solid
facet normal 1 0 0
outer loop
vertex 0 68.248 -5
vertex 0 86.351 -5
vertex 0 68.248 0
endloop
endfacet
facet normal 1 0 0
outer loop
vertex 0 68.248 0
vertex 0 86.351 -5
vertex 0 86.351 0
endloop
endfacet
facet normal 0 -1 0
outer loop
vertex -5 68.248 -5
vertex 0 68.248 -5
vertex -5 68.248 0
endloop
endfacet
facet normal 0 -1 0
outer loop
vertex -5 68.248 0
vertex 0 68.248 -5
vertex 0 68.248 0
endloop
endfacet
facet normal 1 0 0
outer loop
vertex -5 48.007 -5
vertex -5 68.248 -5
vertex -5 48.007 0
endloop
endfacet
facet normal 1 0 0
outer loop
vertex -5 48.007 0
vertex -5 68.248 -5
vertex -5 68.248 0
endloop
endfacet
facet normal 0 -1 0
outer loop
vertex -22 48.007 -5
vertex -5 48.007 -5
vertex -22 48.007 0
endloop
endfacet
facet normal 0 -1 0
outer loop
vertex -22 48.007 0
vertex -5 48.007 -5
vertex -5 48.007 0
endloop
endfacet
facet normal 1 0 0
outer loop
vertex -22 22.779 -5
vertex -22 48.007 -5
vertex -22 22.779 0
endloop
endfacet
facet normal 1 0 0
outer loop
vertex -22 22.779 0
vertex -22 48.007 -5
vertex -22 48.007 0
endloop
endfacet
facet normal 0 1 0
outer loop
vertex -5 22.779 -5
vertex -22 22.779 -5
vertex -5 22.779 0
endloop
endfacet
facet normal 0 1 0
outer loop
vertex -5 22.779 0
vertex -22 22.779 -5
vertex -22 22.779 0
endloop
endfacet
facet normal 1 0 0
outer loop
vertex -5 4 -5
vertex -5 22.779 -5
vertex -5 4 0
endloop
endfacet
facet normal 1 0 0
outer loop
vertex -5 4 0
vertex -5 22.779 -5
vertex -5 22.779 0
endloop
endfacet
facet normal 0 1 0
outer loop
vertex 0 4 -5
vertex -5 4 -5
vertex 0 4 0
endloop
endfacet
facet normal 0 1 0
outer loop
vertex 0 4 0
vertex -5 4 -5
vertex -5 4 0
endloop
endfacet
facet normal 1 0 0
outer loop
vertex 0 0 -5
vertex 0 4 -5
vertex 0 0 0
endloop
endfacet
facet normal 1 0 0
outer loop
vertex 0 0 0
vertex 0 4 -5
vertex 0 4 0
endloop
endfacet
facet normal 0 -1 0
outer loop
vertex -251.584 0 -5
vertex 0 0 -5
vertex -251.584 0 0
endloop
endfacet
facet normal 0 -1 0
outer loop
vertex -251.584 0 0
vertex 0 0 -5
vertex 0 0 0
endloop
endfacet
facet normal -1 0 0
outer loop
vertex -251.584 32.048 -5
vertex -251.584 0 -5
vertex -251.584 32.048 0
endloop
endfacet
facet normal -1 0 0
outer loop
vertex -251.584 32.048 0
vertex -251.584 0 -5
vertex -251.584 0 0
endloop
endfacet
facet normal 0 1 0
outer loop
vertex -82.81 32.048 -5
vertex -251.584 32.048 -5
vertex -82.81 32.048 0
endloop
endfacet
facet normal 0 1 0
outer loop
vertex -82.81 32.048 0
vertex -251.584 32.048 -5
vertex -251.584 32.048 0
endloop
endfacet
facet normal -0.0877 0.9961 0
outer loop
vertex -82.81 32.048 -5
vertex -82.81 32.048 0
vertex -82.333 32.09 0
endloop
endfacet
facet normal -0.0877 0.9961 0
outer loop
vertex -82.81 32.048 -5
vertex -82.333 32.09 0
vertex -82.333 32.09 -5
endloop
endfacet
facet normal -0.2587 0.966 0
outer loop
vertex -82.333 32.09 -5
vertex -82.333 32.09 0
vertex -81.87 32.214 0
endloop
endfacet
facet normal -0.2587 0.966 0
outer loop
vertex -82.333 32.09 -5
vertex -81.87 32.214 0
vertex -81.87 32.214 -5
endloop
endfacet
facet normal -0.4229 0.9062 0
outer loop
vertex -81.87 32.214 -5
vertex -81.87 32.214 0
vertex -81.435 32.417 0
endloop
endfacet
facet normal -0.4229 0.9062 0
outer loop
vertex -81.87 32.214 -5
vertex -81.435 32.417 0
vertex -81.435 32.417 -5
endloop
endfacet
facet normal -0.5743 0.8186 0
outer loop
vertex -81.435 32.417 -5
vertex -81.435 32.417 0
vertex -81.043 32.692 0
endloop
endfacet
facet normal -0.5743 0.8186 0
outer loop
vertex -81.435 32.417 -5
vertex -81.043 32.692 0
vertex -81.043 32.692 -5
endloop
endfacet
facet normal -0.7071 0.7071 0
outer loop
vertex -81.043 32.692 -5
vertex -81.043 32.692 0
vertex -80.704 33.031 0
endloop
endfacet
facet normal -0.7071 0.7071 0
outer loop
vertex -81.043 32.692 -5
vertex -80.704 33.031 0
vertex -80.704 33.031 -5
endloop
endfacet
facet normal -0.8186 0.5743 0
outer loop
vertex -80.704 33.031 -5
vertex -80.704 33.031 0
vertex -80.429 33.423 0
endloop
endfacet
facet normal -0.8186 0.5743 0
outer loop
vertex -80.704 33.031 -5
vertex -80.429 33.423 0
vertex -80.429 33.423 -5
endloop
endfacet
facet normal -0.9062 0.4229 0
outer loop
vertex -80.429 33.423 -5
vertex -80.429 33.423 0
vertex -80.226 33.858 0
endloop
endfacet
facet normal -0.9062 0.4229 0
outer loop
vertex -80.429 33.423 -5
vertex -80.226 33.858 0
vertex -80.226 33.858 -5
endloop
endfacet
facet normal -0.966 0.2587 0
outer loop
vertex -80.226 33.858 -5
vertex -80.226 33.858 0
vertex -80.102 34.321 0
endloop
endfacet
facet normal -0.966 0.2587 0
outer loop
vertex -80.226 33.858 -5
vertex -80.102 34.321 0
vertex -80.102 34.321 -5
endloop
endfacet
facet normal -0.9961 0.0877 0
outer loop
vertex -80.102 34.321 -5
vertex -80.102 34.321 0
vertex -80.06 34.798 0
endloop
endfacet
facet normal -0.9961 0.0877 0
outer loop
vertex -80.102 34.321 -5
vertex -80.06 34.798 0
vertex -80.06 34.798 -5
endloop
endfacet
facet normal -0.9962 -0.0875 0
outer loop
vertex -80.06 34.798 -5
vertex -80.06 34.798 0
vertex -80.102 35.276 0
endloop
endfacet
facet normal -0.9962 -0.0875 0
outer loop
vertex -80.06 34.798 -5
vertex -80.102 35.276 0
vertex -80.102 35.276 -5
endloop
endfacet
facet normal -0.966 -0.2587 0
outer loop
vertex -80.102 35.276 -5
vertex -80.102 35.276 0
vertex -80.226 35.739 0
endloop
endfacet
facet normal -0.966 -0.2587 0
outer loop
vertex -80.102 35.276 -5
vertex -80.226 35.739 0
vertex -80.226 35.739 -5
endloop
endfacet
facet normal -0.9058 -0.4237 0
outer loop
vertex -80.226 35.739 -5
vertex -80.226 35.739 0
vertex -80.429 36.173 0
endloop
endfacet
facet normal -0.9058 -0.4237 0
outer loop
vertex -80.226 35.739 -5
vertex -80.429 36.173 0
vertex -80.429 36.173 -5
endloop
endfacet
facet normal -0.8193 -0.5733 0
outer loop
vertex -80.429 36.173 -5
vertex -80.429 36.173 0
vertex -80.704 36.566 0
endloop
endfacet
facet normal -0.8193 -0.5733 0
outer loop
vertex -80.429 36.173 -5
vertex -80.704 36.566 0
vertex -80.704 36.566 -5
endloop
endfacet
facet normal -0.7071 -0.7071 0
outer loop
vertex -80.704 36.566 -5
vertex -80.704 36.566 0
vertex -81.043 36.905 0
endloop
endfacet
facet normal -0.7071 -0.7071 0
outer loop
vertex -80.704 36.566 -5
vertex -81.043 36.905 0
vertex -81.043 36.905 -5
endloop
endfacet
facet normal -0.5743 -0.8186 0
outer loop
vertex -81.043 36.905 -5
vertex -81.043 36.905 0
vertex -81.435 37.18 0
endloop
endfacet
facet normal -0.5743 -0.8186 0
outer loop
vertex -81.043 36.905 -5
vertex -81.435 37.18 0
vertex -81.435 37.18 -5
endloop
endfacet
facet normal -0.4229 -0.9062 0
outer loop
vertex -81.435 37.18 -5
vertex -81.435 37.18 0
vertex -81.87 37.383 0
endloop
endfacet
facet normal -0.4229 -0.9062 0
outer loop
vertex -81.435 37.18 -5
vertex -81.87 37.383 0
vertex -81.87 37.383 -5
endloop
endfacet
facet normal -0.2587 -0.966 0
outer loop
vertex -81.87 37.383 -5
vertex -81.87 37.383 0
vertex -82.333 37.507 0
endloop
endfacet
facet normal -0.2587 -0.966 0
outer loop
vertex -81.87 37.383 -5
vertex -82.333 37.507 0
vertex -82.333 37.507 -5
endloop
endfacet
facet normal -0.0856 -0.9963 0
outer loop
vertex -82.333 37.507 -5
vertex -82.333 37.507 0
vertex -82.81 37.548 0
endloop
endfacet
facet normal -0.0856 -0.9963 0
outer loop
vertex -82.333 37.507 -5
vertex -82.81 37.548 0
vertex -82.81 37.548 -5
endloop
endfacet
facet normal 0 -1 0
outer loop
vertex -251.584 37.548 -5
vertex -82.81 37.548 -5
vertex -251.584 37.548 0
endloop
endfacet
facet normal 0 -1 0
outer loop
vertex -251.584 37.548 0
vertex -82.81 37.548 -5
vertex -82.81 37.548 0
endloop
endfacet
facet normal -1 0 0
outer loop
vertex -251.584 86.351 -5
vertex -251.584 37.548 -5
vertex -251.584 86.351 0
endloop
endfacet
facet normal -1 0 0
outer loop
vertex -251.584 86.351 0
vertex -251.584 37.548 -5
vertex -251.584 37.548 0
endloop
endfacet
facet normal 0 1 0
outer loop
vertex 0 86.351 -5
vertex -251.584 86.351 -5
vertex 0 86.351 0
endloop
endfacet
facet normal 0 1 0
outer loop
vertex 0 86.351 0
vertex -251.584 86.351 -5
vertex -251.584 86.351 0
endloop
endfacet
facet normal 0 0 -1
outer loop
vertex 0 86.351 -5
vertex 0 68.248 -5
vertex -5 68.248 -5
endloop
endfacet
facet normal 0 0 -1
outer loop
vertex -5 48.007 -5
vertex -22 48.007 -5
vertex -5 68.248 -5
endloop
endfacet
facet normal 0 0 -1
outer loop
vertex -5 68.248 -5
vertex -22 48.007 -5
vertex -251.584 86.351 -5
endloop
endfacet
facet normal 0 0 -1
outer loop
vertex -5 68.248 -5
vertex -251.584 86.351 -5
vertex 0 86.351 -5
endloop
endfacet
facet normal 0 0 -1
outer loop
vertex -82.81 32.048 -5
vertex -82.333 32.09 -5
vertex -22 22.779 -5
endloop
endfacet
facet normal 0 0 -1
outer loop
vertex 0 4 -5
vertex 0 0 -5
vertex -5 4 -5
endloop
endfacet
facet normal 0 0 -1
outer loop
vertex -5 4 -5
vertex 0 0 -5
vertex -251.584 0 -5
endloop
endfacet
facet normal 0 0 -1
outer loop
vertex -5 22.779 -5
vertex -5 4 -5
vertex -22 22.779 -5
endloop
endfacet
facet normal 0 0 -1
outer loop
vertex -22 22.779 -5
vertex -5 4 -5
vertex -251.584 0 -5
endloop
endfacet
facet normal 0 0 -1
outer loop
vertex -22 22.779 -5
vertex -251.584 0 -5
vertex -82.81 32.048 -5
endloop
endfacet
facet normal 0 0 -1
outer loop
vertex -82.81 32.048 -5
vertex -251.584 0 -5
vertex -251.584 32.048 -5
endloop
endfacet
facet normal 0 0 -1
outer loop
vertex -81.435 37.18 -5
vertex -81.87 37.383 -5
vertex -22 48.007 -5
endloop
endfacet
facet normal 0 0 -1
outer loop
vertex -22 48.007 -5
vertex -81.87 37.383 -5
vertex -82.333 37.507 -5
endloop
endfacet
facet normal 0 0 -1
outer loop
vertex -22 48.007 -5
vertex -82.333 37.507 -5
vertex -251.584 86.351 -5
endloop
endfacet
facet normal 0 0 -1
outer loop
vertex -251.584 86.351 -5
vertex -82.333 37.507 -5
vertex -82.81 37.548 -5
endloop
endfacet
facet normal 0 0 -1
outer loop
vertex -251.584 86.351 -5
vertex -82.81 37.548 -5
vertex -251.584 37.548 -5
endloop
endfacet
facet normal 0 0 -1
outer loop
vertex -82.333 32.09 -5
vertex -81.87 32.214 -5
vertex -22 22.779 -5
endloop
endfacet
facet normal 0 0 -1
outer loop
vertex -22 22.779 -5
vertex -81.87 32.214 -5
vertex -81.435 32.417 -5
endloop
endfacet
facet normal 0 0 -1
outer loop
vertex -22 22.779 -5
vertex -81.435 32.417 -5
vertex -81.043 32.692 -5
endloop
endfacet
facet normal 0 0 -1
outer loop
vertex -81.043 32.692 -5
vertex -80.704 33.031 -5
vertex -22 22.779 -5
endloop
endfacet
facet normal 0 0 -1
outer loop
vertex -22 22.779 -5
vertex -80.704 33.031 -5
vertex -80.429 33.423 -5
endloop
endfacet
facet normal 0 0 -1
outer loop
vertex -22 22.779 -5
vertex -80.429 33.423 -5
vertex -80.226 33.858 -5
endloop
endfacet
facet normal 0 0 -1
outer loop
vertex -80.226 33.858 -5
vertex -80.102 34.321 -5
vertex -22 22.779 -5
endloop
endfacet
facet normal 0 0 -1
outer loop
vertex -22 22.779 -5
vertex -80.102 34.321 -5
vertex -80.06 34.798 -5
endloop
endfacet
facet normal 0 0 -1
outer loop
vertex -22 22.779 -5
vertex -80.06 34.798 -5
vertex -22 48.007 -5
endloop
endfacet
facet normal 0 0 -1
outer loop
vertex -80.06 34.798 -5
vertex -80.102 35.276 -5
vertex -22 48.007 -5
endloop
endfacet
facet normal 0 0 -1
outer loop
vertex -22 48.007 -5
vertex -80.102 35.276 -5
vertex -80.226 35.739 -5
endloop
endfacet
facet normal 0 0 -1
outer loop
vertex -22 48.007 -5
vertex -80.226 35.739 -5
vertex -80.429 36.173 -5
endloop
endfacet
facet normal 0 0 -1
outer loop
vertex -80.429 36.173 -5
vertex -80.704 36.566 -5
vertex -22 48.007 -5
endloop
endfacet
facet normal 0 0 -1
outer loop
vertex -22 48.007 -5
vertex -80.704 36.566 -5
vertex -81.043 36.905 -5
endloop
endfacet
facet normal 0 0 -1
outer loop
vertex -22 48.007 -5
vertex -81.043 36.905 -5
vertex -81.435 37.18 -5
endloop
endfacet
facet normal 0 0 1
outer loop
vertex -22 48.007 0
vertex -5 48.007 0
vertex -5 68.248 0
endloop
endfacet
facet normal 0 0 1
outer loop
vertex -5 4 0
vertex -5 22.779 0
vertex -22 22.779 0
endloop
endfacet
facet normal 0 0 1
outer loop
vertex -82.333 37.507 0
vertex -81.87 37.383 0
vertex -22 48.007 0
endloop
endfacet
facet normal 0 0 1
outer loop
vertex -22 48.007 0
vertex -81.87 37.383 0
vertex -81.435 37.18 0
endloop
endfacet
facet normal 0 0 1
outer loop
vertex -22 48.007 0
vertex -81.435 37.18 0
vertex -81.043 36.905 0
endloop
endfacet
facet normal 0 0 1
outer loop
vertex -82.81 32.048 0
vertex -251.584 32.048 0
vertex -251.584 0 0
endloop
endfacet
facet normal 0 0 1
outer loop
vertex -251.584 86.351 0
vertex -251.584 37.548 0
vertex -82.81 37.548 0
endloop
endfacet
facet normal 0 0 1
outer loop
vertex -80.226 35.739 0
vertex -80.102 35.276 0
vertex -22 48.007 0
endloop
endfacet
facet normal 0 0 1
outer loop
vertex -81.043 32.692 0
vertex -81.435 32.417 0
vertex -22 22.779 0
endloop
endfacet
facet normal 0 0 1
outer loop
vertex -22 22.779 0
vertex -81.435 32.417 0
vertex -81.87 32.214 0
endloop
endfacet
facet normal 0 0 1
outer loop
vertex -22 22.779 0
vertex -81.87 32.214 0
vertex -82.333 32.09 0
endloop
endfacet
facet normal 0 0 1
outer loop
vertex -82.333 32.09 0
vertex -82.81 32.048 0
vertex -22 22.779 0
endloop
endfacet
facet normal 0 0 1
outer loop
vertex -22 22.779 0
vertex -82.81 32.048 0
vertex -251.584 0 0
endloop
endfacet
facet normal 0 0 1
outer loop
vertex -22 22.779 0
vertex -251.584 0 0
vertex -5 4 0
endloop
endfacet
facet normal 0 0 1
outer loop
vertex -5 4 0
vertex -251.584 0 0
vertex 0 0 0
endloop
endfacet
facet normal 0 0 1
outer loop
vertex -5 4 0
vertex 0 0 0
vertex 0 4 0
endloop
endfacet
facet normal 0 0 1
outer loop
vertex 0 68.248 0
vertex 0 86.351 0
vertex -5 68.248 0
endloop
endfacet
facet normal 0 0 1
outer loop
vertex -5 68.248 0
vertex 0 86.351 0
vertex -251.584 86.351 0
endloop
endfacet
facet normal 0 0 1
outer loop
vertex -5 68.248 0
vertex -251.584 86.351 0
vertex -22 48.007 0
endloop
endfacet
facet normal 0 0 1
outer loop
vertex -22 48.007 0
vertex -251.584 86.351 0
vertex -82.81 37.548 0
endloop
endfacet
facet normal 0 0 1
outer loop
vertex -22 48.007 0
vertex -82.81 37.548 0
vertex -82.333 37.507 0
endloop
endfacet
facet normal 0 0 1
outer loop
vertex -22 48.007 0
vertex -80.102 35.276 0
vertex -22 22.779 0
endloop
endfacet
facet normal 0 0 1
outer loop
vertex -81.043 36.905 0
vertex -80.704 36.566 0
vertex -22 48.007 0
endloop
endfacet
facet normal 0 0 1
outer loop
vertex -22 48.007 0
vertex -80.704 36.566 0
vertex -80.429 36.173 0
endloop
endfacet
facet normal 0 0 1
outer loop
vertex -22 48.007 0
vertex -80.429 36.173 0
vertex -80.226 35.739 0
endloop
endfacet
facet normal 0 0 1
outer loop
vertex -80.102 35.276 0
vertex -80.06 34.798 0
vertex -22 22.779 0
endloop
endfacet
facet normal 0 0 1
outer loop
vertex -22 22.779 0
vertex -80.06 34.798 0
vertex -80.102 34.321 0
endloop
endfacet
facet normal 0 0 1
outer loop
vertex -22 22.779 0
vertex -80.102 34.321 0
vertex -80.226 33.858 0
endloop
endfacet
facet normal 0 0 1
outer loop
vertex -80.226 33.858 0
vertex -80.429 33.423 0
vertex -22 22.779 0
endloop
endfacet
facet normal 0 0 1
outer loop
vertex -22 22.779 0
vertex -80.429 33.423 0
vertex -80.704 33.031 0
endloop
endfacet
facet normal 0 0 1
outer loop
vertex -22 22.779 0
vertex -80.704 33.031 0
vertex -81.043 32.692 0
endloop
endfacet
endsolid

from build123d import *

# Parameters (mm, degrees)
BOSS_EXTRUDE1_DEPTH = 5


with BuildPart() as part:
    # Sketch1 → Boss-Extrude1 (new body)
    with BuildSketch(Plane.XY):
        with BuildLine():
            Line((-5, 13.882591105), (-5, 8.902615006))
            Line((-5, 8.902615006), (-5, 4))
            Line((-5, 4), (0, 4))
            Line((0, 4), (0, 0))
            Line((0, 0), (-251.584289061, 0))
            Line((-251.584289061, 0), (-251.584289061, 32.048381087))
            Line((-251.584289061, 32.048381087), (-82.810223158, 32.048381087))
            ThreePointArc((-82.810223158, 32.048381087), (-80.060223158, 34.798381087), (-82.810223158, 37.548381087))
            Line((-82.810223158, 37.548381087), (-251.584289061, 37.548381087))
            Line((-251.584289061, 37.548381087), (-251.584289061, 86.350886134))
            Line((-251.584289061, 86.350886134), (0, 86.350886134))
            Line((0, 86.350886134), (0, 68.247704672))
            Line((0, 68.247704672), (-5, 68.247704672))
            Line((-5, 68.247704672), (-5, 48.006517598))
            Line((-5, 48.006517598), (-22, 48.006517598))
            Line((-22, 48.006517598), (-22, 22.779366172))
            Line((-22, 22.779366172), (-5, 22.779366172))
            Line((-5, 22.779366172), (-5, 13.882591105))
        make_face()
    extrude(amount=-BOSS_EXTRUDE1_DEPTH)


solid = part.part
